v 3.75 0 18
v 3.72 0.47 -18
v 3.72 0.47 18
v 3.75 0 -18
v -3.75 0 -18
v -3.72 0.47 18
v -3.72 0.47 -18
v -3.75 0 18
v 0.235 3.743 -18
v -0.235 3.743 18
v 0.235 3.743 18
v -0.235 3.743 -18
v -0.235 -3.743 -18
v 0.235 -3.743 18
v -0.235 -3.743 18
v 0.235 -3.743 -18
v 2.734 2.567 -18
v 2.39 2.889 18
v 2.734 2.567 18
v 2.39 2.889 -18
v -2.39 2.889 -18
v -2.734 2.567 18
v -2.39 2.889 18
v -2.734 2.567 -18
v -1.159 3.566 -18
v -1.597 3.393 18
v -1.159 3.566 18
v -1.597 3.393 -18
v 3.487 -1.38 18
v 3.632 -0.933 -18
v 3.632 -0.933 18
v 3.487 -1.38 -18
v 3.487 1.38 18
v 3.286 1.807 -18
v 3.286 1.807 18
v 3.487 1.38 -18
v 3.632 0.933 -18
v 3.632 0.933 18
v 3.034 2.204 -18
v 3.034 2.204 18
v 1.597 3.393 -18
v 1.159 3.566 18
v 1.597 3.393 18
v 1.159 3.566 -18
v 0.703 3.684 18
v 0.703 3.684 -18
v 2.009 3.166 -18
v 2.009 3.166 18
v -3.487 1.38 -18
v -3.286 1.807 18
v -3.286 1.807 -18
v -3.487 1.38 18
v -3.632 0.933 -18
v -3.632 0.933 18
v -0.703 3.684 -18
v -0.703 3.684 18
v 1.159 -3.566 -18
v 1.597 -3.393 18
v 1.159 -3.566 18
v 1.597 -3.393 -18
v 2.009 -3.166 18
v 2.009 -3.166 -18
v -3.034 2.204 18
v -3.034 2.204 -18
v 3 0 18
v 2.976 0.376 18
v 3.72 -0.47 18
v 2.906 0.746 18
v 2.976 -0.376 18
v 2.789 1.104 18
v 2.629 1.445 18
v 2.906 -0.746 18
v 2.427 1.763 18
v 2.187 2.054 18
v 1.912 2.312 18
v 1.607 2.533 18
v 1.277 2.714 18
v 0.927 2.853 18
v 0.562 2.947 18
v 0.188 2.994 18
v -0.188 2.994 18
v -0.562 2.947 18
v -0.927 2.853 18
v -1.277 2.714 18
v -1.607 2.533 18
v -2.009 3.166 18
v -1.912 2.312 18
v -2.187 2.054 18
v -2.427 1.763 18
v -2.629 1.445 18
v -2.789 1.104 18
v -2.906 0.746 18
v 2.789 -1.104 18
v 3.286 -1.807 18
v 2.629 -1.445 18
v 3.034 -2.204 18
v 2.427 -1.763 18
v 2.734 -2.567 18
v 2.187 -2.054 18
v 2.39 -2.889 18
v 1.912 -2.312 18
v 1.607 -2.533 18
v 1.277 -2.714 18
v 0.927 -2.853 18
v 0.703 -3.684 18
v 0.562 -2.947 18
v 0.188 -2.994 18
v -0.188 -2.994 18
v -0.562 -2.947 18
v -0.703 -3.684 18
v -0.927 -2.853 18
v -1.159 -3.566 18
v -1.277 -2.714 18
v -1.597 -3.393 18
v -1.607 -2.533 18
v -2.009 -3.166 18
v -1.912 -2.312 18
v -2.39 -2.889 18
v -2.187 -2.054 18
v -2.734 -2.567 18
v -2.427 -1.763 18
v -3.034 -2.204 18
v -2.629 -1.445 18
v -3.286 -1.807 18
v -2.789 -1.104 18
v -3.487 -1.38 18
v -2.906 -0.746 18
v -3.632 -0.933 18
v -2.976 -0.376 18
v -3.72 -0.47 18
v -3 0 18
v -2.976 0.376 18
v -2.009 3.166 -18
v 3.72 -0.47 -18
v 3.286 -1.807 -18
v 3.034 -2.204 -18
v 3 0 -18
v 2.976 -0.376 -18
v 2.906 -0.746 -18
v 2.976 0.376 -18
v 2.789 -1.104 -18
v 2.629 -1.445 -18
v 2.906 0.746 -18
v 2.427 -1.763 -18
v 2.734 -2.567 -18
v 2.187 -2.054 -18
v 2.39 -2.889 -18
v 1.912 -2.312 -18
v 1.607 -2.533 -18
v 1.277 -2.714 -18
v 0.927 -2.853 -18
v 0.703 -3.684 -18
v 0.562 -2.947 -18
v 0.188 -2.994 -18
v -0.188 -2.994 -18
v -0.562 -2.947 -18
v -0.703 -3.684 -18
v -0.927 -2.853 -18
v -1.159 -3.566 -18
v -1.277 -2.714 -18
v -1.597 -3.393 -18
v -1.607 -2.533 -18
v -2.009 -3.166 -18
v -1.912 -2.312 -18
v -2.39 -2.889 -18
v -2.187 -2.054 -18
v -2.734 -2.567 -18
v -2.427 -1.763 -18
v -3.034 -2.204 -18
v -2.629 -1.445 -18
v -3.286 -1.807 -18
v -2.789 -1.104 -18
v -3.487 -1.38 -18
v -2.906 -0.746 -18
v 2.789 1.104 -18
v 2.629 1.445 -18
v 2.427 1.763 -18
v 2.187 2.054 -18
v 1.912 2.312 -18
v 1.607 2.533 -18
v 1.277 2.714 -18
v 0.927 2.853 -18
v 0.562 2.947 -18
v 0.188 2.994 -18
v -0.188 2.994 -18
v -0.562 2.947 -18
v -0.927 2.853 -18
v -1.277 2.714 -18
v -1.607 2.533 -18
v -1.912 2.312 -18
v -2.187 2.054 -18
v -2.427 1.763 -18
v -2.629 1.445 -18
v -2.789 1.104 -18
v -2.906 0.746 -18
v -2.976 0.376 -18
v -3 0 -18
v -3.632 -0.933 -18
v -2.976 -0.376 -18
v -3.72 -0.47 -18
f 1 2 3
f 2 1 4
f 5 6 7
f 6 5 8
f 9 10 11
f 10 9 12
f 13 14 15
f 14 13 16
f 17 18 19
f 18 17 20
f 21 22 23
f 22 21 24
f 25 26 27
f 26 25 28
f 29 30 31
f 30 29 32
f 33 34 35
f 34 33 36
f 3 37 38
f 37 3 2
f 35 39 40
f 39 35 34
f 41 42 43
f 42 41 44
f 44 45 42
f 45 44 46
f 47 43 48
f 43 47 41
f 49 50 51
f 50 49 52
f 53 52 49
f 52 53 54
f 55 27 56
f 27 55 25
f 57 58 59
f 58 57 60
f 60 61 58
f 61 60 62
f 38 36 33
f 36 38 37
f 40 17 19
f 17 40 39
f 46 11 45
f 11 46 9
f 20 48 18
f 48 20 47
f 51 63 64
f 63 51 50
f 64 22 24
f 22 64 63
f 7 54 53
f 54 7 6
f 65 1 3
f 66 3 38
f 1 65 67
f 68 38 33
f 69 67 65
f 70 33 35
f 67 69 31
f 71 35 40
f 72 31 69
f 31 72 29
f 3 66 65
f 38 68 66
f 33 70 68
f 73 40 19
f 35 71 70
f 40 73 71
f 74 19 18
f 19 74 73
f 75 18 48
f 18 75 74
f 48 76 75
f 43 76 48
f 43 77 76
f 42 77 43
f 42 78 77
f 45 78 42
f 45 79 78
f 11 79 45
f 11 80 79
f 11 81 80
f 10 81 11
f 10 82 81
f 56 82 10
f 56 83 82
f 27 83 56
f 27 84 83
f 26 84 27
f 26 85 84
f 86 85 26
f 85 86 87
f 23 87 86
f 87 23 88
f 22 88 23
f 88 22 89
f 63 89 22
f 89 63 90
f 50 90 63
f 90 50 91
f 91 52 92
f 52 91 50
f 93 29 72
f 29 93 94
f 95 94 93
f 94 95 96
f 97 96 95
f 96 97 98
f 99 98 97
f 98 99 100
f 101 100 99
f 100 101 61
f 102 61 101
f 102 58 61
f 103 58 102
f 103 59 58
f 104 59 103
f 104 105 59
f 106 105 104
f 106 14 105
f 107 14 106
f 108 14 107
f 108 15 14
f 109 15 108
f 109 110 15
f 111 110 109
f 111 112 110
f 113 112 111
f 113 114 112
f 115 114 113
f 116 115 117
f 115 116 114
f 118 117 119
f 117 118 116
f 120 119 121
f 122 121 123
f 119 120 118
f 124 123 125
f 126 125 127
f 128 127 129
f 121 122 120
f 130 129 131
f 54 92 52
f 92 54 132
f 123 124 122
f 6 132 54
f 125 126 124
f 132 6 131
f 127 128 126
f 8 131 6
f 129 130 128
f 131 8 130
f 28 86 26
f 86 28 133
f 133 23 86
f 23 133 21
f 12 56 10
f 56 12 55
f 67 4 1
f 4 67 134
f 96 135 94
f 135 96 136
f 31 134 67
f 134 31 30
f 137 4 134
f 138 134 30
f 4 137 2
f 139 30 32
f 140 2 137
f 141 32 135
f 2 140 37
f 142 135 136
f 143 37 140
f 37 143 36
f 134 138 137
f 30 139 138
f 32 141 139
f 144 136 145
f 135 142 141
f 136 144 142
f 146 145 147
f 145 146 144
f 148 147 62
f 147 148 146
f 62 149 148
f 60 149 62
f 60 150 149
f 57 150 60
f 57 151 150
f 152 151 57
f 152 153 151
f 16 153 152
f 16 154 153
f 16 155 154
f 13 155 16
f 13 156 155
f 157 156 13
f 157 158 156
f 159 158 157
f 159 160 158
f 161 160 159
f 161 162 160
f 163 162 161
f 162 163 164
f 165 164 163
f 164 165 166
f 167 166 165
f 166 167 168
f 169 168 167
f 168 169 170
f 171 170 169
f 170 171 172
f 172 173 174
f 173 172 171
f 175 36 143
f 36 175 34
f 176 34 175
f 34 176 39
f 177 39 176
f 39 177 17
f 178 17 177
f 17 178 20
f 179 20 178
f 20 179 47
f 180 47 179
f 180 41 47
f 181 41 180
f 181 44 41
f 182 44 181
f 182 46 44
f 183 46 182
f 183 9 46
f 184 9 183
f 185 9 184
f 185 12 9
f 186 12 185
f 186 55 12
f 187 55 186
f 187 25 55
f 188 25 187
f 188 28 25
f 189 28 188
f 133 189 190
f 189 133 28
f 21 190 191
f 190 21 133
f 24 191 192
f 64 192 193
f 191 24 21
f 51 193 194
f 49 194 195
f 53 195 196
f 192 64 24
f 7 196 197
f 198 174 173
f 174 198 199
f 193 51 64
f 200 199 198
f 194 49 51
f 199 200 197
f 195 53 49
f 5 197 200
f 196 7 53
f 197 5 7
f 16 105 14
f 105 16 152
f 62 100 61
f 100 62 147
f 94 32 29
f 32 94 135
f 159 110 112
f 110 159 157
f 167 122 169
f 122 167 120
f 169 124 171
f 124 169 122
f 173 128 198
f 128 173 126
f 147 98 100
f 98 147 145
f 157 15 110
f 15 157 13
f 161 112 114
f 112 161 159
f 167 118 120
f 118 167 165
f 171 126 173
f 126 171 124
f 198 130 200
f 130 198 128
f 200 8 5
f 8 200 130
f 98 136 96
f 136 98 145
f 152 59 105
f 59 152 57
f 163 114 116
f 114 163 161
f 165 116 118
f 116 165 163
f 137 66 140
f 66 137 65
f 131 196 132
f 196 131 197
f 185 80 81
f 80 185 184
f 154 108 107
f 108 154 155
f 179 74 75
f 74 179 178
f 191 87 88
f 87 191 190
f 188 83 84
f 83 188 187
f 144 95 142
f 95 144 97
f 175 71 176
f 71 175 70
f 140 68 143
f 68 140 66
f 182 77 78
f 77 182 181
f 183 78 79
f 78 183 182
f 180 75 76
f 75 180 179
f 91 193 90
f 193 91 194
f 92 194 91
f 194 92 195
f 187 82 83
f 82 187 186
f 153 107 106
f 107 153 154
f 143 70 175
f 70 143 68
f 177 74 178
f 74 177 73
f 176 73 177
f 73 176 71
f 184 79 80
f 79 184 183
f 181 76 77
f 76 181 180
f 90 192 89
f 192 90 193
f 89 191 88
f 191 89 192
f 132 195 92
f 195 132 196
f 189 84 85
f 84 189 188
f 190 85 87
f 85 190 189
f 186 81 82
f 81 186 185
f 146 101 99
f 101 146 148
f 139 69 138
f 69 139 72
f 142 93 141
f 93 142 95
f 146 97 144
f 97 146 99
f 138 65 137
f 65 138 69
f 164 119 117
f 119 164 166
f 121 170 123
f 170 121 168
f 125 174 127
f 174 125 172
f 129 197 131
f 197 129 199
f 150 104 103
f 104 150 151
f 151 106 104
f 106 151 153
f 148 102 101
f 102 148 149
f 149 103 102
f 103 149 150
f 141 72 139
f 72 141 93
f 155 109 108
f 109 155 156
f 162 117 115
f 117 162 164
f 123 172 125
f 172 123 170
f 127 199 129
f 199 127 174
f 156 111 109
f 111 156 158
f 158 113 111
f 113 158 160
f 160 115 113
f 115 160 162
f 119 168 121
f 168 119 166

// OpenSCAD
$fn = 50;


difference() {
	union() {
		translate(v = [0, 0, -18.0000000000]) {
			cylinder(h = 36, r = 3.7500000000);
		}
	}
	union() {
		translate(v = [0, 0, -100.0000000000]) {
			cylinder(h = 200, r = 3.0000000000);
		}
	}
}
